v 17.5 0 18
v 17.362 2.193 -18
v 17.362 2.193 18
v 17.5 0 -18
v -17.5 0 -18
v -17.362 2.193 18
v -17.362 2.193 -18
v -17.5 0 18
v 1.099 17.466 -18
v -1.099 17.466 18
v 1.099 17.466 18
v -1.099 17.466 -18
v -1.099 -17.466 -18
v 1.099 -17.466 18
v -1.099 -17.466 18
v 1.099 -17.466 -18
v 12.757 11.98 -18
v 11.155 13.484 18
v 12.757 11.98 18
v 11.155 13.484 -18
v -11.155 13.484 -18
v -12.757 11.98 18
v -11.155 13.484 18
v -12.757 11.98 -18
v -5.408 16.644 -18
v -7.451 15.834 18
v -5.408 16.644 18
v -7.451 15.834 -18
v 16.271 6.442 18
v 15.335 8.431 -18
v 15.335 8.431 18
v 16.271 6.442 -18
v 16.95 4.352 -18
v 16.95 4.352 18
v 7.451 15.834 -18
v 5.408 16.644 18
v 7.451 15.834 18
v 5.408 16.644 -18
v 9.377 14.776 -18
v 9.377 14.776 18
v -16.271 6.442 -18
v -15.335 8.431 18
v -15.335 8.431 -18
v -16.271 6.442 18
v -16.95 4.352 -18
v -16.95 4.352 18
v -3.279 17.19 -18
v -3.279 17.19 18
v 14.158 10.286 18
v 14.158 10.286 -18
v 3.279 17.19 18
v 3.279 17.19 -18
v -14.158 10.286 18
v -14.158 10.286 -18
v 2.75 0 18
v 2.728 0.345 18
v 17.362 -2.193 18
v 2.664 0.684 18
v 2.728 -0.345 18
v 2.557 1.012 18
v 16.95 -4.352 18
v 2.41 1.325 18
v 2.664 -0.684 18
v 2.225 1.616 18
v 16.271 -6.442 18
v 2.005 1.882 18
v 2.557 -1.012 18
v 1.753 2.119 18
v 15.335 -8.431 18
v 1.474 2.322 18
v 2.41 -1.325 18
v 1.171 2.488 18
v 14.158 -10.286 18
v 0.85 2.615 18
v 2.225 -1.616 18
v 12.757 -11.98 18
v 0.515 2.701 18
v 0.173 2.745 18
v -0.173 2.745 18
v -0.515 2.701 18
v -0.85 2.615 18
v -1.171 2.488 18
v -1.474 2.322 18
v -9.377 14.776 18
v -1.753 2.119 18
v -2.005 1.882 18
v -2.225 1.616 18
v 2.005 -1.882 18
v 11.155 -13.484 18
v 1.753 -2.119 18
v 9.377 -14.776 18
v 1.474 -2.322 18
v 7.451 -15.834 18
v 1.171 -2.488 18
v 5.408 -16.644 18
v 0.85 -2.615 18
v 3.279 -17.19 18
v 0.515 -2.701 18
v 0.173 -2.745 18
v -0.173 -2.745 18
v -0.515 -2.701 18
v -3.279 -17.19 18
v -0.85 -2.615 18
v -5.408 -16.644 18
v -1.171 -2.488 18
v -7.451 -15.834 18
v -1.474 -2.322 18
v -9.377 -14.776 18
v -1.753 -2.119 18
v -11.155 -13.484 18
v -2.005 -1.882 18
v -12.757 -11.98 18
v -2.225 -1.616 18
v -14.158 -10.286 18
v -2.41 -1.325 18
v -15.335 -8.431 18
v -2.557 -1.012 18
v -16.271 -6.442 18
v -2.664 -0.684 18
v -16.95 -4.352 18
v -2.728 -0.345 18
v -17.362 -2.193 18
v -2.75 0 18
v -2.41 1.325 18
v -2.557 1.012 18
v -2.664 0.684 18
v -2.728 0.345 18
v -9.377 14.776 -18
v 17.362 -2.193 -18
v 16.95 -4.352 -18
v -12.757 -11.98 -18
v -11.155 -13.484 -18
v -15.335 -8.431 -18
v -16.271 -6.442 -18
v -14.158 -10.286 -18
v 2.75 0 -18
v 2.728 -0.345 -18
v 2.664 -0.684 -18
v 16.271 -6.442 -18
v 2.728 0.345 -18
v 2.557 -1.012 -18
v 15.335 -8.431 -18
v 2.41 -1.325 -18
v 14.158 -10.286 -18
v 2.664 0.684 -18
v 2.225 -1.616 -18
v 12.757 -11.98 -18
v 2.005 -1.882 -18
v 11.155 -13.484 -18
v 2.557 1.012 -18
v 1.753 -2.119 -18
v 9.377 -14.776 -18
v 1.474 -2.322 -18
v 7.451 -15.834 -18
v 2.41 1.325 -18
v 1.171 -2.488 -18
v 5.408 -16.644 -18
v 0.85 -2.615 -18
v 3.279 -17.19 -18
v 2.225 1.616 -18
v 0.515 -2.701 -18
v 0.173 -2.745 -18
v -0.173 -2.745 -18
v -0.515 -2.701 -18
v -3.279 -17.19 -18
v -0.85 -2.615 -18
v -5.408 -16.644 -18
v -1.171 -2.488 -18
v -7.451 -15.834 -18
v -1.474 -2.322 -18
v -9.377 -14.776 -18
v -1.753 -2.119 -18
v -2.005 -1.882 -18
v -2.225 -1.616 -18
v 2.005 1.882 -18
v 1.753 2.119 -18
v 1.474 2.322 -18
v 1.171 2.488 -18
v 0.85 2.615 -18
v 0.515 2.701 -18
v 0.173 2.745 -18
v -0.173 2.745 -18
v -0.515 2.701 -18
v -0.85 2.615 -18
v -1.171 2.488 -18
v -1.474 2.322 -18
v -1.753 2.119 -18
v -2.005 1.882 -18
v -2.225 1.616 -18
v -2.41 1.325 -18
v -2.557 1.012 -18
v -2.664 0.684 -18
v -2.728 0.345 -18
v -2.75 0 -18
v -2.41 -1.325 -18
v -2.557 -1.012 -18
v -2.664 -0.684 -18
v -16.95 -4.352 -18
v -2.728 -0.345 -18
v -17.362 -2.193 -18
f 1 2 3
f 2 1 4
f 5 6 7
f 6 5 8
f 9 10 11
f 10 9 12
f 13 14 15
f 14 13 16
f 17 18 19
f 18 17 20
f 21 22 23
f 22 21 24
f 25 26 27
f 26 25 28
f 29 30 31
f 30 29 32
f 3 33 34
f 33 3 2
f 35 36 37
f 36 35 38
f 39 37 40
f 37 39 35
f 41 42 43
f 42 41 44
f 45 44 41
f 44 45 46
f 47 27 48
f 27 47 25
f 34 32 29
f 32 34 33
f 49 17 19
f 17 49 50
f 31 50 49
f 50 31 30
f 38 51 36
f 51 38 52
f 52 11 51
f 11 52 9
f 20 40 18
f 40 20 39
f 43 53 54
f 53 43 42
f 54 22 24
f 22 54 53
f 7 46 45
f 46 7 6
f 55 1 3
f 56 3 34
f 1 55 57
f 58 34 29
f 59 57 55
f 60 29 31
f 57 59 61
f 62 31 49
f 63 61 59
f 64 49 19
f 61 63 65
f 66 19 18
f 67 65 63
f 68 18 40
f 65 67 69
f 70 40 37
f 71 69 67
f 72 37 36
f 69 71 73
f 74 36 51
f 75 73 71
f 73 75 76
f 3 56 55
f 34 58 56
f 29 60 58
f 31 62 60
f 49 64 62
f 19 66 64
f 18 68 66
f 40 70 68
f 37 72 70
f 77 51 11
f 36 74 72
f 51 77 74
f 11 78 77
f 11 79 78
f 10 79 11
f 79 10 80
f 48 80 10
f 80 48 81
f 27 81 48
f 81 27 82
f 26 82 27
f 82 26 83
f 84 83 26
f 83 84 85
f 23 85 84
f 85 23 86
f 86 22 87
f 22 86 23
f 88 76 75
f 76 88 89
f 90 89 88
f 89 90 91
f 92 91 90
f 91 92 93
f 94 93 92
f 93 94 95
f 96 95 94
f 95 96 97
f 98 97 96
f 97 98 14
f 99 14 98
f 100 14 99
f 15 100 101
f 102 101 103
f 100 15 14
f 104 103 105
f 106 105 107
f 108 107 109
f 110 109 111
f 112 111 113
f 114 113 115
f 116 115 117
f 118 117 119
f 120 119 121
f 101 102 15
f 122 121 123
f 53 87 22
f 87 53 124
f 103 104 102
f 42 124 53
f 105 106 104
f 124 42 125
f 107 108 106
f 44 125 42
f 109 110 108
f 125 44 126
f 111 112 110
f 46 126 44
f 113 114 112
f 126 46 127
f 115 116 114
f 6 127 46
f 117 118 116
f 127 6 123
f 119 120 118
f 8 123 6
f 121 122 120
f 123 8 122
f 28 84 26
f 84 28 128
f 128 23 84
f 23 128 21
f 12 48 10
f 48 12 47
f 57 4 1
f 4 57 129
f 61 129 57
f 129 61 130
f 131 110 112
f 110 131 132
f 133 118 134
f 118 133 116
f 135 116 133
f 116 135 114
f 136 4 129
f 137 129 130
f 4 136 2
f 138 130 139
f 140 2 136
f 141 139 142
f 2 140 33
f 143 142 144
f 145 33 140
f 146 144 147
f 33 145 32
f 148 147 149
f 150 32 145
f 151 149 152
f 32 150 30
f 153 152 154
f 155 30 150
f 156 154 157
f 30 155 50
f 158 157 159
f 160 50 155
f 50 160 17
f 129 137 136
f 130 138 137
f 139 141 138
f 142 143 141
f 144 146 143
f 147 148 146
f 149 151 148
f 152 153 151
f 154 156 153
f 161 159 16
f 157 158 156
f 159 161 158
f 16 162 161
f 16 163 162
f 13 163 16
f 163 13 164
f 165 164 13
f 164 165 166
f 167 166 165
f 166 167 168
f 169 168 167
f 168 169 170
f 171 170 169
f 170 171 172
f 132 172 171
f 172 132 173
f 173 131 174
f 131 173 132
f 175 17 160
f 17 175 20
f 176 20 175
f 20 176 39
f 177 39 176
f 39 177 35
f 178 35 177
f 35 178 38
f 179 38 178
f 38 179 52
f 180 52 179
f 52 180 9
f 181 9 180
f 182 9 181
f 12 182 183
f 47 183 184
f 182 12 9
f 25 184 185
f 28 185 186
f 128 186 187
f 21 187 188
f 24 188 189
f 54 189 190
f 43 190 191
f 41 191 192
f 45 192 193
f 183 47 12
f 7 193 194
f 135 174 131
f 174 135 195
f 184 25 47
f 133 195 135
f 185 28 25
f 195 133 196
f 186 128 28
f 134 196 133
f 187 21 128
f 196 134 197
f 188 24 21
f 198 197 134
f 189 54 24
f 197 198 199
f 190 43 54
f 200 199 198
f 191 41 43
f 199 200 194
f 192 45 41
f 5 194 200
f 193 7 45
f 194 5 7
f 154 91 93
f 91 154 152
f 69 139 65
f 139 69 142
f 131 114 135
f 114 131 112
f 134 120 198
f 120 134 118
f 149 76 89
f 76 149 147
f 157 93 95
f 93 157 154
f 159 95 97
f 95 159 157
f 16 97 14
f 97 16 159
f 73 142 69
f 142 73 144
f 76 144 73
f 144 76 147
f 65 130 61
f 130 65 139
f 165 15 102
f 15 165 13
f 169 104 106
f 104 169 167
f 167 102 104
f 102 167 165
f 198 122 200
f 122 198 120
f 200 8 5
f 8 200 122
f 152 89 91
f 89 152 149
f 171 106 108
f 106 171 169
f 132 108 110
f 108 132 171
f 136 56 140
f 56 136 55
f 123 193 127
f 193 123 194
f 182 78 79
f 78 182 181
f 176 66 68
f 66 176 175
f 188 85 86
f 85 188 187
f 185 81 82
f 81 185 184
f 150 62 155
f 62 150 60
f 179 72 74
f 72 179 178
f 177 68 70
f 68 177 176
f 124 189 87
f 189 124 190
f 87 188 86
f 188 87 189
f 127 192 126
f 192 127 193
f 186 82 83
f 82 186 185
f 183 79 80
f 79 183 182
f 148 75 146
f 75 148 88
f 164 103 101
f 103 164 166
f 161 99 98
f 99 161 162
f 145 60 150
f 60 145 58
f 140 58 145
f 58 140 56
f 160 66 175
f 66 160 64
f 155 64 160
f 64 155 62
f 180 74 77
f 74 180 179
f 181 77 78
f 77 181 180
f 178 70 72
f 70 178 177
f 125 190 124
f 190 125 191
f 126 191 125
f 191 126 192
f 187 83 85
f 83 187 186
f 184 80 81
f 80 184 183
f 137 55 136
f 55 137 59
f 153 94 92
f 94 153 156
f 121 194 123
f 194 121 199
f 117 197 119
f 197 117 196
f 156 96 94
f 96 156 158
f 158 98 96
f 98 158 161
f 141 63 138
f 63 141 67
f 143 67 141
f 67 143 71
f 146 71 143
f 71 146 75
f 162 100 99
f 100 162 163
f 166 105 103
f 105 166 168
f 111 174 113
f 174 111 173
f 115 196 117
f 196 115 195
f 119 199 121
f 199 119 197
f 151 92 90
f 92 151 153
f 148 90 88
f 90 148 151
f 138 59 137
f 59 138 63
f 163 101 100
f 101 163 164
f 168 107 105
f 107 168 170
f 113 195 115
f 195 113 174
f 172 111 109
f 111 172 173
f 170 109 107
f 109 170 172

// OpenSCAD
$fn = 50;


difference() {
	union() {
		translate(v = [0, 0, -18.0000000000]) {
			cylinder(h = 36, r = 17.5000000000);
		}
	}
	union() {
		translate(v = [0, 0, -100.0000000000]) {
			cylinder(h = 200, r = 2.7500000000);
		}
	}
}
